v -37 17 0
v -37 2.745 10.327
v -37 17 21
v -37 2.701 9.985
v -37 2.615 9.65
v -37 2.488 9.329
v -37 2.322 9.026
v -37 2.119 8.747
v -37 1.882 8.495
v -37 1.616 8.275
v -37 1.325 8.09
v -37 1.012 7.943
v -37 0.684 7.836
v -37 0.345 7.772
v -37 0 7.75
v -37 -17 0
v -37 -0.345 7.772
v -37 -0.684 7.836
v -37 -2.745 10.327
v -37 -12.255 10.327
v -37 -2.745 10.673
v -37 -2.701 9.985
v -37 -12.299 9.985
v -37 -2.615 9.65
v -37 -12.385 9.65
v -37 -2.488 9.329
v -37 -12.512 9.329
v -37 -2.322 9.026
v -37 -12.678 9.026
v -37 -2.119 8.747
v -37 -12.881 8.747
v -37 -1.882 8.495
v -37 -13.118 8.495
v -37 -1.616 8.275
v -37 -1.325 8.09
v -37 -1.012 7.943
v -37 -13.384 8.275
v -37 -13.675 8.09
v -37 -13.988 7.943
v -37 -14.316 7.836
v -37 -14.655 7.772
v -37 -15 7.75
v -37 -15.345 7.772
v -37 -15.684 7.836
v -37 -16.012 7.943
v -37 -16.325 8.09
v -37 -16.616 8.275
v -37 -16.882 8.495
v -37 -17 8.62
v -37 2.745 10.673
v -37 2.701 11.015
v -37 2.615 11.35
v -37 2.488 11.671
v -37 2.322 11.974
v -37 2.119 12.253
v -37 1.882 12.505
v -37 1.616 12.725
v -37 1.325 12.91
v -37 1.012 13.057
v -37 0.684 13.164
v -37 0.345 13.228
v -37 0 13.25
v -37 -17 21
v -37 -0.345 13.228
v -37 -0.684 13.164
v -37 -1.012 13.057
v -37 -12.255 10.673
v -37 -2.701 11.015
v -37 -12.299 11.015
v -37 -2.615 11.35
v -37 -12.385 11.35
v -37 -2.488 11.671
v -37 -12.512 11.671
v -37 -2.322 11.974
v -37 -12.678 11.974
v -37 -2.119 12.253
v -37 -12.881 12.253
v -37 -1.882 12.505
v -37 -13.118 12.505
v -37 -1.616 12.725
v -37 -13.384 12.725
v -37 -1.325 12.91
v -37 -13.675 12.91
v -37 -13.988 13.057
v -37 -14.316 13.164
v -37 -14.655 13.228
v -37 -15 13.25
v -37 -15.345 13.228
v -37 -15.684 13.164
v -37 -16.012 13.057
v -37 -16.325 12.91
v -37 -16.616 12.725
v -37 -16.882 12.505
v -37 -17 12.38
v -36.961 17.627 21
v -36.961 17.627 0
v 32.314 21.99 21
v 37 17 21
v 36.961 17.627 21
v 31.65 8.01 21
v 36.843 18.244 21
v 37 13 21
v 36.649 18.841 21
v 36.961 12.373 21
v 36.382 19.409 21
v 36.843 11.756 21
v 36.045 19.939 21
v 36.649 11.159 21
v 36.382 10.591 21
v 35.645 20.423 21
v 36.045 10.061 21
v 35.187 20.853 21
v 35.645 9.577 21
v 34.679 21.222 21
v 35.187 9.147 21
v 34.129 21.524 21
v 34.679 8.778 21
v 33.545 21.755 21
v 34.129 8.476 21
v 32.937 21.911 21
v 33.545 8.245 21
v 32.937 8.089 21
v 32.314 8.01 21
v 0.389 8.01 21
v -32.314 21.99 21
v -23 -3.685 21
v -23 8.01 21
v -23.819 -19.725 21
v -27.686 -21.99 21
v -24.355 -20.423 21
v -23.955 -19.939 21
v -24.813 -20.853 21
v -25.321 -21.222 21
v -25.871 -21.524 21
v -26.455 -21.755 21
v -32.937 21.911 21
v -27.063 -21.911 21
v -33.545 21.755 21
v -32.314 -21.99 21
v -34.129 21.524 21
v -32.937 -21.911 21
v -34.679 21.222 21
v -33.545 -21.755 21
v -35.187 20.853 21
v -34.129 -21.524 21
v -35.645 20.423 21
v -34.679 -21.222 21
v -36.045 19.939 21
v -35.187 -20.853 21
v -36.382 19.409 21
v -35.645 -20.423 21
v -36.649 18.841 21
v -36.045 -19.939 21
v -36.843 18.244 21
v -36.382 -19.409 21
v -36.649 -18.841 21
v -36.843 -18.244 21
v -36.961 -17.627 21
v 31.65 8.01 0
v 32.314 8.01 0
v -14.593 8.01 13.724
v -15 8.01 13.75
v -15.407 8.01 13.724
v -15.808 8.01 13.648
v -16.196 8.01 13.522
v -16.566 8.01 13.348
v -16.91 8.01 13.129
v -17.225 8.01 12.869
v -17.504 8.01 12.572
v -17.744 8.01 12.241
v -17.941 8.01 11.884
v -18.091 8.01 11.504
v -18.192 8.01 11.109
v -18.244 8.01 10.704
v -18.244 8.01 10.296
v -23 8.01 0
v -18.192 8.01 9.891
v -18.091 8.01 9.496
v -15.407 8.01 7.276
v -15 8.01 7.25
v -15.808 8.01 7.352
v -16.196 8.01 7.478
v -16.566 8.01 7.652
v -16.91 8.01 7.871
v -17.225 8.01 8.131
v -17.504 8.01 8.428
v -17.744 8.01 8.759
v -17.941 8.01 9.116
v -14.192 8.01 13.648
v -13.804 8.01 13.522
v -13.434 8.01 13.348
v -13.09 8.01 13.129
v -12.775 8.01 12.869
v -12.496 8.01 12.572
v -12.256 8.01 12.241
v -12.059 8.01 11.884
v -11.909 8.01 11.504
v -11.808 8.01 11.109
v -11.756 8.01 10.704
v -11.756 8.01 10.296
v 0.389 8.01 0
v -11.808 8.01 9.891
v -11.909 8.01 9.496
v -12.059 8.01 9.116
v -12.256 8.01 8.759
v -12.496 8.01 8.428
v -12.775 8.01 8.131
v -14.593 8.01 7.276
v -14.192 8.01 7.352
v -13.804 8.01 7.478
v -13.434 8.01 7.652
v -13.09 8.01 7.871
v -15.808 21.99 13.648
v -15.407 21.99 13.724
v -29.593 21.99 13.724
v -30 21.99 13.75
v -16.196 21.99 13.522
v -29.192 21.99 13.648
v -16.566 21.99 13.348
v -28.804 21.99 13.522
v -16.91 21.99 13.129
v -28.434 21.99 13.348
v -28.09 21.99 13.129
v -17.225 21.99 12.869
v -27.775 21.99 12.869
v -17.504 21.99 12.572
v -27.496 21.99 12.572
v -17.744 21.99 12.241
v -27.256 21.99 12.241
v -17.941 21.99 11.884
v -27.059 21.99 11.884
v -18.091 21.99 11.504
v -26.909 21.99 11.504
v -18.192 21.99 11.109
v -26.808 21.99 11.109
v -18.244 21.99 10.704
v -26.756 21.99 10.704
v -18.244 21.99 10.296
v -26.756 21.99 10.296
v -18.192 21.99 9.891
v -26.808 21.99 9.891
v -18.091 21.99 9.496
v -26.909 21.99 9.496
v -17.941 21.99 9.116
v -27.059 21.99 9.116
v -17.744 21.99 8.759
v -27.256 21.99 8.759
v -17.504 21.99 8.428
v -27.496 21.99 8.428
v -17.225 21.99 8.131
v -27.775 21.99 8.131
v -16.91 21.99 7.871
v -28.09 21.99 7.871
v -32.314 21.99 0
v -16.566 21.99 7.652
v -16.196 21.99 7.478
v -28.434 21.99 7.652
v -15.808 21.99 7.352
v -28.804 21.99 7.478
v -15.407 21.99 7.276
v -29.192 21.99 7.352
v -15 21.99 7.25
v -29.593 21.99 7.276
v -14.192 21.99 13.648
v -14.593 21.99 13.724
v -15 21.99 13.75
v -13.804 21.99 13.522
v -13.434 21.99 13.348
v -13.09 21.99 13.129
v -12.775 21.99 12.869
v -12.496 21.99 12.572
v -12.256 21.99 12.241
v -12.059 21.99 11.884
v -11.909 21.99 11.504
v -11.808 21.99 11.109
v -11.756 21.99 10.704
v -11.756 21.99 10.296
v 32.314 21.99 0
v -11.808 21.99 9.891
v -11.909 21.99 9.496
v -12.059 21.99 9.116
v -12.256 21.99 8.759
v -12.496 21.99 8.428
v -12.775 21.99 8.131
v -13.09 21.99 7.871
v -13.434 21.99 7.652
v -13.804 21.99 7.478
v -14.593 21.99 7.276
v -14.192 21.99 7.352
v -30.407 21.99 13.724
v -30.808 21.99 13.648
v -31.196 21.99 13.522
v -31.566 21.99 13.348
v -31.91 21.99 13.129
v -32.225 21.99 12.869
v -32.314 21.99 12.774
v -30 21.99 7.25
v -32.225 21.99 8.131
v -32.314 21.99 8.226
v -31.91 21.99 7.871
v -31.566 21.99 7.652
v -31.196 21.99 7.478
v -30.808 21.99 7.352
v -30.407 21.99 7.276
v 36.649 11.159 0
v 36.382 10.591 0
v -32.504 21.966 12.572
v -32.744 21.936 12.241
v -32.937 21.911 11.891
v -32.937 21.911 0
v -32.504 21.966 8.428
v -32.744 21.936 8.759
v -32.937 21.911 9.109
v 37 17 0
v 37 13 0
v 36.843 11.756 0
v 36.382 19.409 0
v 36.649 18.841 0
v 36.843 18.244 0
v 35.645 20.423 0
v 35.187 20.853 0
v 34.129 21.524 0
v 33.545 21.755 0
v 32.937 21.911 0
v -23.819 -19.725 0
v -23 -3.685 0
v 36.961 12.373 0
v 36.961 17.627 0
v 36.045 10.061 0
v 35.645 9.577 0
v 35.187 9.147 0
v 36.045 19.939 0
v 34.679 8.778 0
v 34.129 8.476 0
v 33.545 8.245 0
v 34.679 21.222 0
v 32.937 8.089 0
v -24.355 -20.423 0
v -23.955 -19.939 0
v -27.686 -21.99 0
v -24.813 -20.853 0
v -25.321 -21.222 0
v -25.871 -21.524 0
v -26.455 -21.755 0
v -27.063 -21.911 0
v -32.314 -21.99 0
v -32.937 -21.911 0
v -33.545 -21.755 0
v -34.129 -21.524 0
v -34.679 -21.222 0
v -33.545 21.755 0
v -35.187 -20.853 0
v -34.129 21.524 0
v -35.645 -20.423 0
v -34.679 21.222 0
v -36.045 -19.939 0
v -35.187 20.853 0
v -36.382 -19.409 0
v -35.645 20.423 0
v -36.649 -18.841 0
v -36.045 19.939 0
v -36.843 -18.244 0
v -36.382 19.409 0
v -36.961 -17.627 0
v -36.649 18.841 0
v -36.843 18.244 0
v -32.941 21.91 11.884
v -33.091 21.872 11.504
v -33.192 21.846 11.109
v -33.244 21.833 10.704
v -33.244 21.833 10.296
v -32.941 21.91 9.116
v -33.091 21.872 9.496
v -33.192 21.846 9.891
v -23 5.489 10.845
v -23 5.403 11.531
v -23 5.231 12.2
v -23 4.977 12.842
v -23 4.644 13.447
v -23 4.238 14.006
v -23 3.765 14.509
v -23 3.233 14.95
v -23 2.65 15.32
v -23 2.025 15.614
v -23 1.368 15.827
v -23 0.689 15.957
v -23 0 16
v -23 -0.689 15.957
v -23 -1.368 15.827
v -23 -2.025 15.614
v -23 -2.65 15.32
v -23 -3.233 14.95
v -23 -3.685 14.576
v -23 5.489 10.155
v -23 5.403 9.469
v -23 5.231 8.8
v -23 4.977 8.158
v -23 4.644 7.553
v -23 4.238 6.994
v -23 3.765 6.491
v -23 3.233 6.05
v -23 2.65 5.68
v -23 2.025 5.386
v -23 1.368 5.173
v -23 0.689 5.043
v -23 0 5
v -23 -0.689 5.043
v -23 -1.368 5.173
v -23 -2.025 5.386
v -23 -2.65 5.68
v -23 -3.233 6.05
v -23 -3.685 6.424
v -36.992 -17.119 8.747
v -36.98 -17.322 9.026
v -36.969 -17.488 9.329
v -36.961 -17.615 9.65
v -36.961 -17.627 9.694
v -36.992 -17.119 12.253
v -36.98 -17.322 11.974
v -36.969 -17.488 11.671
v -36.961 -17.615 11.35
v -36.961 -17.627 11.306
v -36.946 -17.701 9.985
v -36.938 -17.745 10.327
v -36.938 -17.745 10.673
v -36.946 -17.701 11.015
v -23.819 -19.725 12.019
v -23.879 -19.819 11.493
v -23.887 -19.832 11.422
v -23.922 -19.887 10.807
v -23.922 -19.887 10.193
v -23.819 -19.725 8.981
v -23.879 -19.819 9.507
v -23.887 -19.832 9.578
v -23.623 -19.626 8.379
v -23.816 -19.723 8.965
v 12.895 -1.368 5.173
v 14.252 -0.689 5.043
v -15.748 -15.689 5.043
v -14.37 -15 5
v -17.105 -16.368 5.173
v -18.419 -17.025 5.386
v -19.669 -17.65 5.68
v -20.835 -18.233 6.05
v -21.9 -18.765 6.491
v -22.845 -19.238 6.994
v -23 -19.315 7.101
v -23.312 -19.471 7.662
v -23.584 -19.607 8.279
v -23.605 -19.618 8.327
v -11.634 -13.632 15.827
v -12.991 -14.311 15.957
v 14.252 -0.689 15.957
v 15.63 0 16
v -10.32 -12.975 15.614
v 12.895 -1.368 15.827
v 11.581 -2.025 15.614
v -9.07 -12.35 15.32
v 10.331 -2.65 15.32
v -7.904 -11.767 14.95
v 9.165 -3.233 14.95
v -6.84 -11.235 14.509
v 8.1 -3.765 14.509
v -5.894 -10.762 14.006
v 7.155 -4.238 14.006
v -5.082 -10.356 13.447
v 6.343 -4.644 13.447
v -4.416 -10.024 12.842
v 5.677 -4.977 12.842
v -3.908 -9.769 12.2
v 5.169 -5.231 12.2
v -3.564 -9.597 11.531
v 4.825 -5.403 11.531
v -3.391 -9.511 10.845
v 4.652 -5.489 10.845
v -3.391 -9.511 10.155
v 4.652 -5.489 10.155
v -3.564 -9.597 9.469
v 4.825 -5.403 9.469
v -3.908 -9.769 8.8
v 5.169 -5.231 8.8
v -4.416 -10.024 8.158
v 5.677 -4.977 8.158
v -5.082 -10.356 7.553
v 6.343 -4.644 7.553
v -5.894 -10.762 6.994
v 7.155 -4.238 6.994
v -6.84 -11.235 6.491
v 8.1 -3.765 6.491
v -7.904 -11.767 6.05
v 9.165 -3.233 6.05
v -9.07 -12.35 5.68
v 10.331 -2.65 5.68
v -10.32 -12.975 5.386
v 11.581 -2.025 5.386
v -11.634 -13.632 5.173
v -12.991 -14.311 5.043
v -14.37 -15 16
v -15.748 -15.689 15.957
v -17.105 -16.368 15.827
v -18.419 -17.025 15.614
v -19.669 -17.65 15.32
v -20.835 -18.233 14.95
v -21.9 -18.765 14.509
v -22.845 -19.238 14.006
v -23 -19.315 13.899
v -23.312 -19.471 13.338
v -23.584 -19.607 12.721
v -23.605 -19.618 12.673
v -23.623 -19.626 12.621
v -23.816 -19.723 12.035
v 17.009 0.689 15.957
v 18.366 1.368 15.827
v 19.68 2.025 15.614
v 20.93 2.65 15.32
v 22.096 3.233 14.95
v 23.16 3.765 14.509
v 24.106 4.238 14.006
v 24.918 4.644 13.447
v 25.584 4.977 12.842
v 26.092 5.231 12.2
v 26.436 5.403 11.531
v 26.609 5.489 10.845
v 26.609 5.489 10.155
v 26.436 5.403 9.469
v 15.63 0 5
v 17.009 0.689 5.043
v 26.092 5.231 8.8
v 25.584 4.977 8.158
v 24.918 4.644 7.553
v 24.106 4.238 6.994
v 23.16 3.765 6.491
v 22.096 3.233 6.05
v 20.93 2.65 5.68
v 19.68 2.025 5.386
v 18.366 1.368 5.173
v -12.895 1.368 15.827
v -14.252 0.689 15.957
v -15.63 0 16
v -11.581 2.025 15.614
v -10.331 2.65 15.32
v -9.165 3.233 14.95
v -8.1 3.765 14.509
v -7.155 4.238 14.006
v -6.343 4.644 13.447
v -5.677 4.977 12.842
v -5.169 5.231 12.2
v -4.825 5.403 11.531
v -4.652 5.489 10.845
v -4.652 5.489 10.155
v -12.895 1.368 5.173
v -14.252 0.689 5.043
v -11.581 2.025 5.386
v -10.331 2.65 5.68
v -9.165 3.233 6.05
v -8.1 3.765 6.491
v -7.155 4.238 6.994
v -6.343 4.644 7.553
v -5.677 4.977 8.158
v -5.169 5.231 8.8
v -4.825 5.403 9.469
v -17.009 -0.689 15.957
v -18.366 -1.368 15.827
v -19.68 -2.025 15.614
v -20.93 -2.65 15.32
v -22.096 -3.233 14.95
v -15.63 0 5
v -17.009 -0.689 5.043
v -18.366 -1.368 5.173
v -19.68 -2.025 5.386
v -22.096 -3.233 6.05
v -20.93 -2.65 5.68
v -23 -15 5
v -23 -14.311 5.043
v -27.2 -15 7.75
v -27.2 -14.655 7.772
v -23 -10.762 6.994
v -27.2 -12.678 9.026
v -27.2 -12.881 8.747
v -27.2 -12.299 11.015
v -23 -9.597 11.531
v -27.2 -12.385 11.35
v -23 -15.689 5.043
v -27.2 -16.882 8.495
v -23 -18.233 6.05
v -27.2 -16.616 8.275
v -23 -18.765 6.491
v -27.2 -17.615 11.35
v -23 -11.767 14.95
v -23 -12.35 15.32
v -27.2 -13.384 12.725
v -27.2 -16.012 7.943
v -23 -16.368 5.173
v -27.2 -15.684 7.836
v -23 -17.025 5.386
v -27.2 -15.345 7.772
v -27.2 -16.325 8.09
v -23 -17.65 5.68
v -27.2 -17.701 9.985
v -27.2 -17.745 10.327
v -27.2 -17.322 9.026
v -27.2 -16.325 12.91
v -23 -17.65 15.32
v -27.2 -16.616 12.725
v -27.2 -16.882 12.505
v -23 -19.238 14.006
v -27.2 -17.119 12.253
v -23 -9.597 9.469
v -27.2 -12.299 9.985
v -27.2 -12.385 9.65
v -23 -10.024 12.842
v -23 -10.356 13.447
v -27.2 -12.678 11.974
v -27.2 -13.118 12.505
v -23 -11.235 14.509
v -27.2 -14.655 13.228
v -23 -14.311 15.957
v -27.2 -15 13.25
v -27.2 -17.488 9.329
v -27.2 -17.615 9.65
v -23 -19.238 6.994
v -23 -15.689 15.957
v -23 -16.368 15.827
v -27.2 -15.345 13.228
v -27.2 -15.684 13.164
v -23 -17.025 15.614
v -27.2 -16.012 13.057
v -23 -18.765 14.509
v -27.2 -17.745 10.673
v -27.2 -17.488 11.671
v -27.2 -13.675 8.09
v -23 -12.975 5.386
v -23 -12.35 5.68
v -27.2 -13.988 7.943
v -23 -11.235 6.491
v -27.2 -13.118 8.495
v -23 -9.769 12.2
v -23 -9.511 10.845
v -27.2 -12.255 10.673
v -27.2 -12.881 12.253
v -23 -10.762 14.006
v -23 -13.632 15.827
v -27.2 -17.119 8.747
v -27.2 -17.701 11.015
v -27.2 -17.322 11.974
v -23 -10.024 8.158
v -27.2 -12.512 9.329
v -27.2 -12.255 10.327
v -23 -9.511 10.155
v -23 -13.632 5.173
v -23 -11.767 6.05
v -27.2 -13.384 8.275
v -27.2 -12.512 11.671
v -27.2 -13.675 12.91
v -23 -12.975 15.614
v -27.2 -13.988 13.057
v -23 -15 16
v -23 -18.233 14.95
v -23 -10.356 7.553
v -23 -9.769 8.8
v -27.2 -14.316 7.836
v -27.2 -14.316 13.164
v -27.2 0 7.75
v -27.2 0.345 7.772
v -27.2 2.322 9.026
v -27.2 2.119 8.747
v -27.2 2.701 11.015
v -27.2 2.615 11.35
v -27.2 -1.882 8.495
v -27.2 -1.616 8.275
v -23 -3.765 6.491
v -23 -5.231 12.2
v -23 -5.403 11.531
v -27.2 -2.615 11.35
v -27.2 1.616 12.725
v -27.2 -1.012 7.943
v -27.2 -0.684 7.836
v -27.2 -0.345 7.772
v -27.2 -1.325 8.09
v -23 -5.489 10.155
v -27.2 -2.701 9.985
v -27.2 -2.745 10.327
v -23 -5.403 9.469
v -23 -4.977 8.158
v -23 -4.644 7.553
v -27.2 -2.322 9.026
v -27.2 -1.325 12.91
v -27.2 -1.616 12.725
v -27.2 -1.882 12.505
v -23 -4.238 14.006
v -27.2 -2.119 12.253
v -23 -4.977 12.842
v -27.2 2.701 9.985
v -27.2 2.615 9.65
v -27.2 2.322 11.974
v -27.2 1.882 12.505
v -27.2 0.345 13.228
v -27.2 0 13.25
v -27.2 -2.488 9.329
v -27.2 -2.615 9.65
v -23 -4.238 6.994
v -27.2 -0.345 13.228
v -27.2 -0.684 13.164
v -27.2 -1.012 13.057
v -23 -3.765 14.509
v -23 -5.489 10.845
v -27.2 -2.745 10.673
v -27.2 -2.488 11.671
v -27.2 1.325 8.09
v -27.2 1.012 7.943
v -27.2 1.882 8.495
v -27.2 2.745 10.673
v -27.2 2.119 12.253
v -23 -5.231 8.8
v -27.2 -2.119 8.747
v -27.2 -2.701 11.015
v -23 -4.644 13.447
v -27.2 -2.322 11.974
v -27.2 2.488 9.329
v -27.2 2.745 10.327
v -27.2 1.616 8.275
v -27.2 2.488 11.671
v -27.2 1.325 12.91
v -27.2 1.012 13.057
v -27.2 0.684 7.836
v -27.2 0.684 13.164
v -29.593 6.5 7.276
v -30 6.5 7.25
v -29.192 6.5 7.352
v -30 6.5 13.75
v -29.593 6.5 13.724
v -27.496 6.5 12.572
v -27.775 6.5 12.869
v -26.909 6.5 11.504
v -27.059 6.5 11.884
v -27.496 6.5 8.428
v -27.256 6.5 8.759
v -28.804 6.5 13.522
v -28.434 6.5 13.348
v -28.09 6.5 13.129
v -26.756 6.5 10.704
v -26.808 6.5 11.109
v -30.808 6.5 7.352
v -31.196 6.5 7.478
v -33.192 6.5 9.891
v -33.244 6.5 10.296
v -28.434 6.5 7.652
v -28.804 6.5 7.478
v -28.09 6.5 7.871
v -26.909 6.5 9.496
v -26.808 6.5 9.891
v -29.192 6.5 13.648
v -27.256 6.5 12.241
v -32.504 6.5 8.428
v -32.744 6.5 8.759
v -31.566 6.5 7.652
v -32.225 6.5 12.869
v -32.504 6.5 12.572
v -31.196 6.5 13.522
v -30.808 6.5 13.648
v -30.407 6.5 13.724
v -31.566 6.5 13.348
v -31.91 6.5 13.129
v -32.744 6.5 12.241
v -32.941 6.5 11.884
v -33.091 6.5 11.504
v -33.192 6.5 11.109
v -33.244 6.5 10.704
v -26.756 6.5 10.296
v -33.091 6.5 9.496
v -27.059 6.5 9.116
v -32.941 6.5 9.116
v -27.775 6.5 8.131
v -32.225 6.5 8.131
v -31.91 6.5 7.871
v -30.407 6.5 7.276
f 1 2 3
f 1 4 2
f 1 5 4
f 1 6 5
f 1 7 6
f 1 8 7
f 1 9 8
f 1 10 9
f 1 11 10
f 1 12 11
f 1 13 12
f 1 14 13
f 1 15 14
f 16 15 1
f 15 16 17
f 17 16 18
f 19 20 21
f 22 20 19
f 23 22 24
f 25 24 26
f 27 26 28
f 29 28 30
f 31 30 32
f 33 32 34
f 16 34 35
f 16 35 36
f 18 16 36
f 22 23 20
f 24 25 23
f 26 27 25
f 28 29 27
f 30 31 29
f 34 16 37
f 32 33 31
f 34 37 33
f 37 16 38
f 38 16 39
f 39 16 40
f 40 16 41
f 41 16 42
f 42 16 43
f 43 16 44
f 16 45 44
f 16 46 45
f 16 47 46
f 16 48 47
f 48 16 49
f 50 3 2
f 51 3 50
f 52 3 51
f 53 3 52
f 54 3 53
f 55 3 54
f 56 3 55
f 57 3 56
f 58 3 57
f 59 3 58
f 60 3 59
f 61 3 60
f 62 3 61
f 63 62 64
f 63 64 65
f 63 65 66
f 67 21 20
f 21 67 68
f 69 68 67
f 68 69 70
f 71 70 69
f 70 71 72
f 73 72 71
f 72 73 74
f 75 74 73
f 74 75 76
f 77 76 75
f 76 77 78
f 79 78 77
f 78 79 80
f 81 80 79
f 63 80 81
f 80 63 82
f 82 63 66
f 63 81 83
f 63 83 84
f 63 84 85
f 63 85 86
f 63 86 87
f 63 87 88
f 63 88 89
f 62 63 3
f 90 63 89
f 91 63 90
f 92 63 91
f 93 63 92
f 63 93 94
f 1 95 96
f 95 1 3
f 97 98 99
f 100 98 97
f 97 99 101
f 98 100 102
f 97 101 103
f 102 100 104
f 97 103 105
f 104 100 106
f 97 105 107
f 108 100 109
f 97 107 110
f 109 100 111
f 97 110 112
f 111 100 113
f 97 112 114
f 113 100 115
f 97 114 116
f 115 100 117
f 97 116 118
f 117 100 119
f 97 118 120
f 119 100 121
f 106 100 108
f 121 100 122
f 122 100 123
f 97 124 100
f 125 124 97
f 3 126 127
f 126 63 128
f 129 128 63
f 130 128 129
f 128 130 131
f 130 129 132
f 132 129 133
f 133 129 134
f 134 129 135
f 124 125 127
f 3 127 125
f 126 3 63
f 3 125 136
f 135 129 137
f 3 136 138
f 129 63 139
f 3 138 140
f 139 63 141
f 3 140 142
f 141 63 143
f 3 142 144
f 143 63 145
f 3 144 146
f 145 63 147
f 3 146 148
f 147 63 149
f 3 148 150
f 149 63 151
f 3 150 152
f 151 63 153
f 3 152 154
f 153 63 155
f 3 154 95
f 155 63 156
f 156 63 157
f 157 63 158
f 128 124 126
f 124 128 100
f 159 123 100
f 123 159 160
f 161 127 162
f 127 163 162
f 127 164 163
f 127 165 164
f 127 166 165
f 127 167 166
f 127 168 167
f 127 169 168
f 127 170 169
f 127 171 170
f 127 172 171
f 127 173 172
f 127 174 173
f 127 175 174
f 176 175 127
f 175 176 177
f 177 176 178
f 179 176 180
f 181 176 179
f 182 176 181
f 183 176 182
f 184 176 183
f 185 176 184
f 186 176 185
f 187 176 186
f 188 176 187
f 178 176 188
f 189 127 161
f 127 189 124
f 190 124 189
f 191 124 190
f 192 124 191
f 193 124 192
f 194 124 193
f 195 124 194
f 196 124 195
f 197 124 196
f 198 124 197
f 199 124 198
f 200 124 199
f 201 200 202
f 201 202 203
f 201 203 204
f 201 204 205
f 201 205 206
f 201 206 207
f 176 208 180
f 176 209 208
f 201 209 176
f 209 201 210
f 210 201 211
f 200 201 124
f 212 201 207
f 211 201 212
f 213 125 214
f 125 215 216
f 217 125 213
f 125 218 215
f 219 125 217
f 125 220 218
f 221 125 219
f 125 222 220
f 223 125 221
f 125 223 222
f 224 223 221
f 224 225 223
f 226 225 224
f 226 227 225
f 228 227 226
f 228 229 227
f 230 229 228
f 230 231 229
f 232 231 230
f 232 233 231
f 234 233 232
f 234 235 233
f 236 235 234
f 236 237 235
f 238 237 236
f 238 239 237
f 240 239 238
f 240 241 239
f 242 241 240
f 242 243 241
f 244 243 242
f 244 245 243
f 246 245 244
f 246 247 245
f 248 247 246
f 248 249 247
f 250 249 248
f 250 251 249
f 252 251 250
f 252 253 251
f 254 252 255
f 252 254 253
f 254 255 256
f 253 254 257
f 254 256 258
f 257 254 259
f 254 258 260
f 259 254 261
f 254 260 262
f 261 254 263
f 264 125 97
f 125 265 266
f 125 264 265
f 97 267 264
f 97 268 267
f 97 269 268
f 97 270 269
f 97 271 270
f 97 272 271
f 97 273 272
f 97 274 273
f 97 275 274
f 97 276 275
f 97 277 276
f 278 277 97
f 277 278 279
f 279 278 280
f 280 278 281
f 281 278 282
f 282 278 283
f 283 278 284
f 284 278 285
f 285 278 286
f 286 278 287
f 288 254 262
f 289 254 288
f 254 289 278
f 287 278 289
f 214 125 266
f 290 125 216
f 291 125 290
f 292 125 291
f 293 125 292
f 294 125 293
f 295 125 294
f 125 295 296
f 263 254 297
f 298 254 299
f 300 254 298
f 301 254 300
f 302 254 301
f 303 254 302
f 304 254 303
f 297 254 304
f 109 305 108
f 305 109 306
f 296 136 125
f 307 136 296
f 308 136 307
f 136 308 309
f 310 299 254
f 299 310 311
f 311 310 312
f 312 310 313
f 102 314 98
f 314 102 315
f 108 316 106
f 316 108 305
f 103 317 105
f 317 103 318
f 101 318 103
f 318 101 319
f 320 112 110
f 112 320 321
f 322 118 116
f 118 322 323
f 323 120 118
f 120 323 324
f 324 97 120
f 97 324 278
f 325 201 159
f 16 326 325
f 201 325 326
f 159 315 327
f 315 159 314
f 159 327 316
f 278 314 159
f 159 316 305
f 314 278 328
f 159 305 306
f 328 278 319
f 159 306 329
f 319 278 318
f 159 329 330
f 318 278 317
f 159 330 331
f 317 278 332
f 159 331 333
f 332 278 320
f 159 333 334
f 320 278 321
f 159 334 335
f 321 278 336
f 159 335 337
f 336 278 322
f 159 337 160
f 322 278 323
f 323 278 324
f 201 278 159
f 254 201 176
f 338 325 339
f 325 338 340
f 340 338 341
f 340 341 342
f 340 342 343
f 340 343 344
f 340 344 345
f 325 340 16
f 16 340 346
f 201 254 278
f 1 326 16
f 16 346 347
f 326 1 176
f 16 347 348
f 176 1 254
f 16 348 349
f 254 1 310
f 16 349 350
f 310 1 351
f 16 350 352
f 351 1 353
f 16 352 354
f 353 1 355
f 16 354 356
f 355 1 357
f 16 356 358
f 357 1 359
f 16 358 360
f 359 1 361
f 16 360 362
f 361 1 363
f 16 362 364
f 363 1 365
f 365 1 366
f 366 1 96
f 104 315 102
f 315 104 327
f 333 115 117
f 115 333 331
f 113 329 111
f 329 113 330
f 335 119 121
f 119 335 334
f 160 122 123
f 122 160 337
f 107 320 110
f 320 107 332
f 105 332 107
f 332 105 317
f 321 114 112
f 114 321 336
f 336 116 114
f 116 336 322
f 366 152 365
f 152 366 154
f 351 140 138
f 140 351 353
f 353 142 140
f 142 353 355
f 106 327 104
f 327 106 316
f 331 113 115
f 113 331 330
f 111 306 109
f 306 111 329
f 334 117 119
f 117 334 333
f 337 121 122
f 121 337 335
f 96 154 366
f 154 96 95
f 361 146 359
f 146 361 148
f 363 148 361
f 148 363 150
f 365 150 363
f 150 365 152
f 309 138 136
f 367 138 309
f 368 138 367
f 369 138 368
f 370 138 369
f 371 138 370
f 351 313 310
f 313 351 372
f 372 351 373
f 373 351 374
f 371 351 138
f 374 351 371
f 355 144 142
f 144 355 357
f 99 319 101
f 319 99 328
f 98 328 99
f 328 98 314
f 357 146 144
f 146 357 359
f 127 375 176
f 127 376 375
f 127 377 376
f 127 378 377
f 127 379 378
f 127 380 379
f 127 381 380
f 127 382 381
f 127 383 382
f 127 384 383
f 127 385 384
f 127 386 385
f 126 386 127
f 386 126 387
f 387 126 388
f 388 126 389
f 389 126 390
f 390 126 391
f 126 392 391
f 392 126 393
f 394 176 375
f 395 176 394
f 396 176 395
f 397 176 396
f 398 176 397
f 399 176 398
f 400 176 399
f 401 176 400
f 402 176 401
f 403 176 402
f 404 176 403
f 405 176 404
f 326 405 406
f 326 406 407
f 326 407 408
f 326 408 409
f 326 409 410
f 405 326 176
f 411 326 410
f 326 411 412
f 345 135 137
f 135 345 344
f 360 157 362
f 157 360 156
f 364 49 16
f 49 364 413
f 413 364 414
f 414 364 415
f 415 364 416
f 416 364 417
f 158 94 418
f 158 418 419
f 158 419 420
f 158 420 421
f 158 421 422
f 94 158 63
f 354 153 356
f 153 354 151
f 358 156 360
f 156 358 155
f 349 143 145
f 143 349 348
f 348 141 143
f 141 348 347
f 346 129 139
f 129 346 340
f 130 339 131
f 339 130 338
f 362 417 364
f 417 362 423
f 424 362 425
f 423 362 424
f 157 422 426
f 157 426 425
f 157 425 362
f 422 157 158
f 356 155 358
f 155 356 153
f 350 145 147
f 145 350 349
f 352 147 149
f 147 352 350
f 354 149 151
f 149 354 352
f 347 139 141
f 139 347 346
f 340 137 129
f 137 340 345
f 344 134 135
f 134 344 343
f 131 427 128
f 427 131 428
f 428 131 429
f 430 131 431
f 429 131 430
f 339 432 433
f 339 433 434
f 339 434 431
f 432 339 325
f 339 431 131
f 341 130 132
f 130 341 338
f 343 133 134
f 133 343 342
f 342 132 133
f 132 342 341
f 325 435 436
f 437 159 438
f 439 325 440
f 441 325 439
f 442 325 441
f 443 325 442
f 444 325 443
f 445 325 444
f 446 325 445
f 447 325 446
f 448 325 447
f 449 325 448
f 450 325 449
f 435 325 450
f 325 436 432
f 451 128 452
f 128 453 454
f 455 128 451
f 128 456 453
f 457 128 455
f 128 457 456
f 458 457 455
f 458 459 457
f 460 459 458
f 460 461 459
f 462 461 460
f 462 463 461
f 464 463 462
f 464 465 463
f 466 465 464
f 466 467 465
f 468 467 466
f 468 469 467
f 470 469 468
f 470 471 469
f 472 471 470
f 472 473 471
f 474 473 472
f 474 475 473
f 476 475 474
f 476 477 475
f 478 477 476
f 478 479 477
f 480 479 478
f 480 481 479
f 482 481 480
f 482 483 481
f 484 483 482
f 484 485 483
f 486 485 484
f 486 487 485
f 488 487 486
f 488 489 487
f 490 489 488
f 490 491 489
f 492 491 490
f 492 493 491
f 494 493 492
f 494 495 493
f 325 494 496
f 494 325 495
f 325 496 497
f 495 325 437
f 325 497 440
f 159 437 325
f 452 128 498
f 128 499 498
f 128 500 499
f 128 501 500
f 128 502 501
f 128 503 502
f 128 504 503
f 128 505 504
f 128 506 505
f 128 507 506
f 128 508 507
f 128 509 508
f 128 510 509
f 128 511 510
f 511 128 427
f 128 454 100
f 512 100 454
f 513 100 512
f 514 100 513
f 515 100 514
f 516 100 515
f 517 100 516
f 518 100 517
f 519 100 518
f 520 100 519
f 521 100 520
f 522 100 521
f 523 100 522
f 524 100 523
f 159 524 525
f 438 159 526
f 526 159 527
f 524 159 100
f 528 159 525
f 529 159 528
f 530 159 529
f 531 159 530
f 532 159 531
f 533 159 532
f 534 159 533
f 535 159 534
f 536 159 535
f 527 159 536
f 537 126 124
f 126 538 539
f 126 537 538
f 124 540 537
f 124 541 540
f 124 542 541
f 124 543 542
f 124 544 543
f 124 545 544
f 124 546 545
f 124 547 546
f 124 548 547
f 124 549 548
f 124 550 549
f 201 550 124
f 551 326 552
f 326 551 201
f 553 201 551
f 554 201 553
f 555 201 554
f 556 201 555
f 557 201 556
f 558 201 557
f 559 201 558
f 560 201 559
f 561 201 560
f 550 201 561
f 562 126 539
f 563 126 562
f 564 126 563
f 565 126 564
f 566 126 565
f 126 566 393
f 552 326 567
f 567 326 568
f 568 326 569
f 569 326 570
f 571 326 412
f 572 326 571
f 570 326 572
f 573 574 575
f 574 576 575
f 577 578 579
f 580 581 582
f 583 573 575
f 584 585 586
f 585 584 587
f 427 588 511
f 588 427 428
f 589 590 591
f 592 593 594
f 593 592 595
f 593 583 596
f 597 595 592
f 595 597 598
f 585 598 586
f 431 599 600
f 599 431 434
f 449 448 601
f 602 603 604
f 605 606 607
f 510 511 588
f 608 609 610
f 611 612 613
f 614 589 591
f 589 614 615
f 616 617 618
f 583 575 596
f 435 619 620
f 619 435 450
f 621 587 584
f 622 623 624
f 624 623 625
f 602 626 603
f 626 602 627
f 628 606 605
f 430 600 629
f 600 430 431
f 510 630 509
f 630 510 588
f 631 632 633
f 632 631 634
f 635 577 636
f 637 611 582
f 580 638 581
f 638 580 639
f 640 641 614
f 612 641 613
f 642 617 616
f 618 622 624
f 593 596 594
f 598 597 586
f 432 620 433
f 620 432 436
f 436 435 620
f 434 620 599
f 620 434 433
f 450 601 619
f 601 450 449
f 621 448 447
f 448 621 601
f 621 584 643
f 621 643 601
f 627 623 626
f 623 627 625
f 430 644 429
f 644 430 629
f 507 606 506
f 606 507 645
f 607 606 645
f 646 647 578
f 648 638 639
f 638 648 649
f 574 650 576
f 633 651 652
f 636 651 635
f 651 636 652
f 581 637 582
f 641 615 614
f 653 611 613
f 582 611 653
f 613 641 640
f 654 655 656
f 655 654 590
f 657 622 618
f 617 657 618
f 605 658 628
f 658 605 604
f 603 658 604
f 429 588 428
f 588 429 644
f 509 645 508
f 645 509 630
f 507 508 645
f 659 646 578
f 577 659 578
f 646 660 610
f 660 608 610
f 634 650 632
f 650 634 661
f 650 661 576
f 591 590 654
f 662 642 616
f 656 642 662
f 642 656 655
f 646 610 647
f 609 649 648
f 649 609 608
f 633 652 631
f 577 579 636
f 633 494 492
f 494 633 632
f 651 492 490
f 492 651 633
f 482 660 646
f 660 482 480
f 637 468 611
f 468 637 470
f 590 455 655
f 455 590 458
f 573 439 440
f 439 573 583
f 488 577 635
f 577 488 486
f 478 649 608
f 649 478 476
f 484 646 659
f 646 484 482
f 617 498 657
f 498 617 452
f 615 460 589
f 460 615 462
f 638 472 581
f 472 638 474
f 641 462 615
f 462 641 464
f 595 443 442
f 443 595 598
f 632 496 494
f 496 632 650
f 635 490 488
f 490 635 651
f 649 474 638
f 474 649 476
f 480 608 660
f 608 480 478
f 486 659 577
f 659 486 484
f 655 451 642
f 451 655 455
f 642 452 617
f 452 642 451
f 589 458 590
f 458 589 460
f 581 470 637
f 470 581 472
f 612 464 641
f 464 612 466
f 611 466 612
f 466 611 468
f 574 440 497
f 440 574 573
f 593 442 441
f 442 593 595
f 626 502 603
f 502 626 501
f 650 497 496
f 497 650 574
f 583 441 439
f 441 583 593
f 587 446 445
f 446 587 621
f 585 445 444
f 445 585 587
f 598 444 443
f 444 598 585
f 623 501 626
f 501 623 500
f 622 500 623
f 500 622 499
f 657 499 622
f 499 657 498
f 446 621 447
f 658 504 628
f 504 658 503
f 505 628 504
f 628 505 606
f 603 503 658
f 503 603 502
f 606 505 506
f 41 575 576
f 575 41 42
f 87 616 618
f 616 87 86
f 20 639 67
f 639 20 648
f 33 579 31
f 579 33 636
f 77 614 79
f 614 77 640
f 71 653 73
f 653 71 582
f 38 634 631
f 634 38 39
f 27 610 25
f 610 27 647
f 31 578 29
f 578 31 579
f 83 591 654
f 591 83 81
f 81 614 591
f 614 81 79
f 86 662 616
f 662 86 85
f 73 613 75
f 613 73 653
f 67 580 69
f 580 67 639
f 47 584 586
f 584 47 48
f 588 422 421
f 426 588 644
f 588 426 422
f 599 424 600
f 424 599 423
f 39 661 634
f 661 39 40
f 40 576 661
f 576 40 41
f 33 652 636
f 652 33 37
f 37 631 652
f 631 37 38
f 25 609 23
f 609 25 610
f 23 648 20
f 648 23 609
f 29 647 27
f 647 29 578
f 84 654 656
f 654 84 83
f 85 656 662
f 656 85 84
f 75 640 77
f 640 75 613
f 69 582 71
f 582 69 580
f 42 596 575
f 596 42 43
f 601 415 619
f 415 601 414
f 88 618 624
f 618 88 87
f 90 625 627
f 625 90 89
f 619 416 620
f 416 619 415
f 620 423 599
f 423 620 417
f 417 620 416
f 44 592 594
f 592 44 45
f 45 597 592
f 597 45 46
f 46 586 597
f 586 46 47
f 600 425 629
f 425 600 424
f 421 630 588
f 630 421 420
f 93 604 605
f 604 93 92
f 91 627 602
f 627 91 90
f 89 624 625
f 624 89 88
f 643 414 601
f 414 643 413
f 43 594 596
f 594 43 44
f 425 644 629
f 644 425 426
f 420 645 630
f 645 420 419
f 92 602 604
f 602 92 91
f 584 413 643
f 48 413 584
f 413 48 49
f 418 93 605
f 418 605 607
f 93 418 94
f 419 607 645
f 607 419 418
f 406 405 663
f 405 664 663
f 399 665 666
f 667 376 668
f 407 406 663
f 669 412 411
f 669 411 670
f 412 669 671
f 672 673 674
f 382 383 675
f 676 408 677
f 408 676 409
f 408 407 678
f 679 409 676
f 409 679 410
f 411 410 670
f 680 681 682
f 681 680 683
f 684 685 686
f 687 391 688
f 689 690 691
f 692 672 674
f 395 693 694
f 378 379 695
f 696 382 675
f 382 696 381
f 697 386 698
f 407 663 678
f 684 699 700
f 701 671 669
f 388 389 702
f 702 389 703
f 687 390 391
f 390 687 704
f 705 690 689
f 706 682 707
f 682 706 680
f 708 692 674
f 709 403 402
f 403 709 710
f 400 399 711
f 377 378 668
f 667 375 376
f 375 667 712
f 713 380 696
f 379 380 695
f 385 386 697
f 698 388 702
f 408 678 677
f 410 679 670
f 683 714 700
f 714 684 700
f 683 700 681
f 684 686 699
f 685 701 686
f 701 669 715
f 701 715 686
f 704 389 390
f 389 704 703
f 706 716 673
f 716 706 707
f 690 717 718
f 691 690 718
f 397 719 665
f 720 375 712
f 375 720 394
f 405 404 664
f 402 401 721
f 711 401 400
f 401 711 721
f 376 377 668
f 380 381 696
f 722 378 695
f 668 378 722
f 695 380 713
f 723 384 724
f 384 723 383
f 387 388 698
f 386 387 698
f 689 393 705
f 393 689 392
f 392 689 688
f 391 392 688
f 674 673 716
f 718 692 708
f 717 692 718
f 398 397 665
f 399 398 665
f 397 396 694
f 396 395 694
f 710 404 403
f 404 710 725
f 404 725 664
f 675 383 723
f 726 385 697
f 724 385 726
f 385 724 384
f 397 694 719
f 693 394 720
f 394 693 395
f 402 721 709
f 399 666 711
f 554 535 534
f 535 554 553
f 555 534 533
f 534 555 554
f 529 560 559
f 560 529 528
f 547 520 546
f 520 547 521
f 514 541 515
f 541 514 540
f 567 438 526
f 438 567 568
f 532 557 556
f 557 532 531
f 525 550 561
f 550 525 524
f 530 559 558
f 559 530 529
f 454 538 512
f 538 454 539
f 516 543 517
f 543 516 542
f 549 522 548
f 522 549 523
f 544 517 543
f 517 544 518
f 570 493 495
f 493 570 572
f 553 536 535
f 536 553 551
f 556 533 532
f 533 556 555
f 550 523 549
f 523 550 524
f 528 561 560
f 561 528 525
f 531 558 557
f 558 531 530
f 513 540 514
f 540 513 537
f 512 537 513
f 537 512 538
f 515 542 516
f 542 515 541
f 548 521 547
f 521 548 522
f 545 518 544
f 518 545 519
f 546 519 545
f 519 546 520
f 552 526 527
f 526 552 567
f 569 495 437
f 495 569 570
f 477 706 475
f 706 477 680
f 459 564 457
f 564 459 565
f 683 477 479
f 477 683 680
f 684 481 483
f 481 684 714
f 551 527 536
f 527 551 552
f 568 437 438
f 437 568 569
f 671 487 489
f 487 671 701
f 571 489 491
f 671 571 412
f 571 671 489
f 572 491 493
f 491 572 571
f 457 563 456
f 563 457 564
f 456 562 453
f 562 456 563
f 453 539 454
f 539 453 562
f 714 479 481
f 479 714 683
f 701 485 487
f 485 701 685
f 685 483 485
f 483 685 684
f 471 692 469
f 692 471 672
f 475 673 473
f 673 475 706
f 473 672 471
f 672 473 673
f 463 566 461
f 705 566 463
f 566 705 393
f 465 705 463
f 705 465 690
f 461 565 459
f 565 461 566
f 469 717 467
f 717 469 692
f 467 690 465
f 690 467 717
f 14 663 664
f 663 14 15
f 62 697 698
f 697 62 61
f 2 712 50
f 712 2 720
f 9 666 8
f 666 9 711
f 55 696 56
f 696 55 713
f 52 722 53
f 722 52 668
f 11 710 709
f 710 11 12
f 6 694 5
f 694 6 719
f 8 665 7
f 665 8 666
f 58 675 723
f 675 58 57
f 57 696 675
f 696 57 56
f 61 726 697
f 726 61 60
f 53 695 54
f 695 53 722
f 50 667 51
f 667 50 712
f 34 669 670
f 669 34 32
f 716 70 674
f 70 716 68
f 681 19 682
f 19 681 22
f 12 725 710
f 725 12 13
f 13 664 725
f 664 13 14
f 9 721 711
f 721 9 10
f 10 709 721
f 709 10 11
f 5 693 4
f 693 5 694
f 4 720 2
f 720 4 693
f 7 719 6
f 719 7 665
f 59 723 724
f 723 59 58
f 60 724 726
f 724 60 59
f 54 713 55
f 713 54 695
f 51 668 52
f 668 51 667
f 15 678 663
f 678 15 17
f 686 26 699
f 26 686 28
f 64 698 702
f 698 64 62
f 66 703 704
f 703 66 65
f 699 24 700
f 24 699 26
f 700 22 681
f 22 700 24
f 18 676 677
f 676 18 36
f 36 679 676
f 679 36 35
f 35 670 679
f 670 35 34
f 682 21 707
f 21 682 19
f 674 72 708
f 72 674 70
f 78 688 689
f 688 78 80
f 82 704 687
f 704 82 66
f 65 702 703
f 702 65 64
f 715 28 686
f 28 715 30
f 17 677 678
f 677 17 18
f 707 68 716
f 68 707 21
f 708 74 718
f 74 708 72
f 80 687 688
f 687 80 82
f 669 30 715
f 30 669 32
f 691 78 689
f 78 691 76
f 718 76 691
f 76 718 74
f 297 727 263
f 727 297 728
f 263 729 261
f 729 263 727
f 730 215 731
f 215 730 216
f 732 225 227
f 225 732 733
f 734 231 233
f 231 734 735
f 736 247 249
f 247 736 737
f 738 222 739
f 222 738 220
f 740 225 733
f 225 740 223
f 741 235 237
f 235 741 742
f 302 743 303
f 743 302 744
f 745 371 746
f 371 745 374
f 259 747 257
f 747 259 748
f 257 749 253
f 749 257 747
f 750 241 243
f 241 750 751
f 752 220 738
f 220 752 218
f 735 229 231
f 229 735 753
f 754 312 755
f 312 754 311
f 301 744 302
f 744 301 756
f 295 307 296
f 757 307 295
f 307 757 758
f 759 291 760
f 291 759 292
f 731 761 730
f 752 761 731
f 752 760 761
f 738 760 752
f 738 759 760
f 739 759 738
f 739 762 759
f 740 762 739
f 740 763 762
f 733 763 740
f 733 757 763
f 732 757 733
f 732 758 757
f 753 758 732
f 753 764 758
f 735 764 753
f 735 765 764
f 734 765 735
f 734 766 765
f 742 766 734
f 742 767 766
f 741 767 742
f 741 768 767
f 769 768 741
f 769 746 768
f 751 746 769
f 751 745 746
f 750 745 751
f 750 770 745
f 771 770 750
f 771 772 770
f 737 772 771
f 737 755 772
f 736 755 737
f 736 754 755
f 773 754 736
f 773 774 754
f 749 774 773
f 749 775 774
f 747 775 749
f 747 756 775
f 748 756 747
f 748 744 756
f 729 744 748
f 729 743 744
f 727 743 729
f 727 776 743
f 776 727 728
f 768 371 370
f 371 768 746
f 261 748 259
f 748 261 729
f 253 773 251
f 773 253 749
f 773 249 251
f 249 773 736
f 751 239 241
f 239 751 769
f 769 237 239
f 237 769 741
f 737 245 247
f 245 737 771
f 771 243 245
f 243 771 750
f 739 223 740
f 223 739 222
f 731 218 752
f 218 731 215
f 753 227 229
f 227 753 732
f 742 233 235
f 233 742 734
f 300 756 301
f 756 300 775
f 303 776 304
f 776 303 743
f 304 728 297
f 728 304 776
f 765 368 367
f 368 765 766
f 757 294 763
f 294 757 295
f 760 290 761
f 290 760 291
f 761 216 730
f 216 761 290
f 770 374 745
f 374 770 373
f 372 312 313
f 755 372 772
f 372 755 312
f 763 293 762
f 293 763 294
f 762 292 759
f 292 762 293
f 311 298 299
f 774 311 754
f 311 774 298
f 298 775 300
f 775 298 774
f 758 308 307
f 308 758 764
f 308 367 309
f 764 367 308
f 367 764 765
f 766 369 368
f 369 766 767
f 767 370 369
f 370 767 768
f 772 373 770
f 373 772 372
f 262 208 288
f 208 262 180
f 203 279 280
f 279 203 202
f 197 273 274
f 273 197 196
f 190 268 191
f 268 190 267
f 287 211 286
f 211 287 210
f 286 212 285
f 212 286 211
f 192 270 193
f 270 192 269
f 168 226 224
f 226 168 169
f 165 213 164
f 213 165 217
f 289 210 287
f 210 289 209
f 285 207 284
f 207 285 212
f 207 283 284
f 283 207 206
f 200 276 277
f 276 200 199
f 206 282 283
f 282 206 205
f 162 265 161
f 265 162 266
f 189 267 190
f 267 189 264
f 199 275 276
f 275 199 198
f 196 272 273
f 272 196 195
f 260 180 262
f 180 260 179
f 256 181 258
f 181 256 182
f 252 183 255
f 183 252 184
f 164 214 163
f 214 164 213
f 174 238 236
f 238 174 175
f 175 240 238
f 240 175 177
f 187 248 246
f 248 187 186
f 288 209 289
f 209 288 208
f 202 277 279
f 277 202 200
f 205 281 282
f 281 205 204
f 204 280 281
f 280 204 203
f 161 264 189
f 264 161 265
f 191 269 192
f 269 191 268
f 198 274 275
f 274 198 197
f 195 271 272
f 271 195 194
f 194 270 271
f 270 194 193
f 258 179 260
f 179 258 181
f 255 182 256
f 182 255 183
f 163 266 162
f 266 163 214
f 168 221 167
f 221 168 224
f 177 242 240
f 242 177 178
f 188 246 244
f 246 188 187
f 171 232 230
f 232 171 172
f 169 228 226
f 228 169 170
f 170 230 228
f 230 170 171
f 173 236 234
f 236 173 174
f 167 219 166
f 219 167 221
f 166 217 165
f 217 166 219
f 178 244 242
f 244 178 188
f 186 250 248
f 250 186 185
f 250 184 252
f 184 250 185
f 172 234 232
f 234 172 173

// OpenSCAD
$fn = 50;


difference() {
	union() {
		translate(v = [0, 15.0000000000, 0]) {
			hull() {
				translate(v = [-32.0000000000, 2.0000000000, 0]) {
					cylinder(h = 21, r = 5);
				}
				translate(v = [32.0000000000, 2.0000000000, 0]) {
					cylinder(h = 21, r = 5);
				}
				translate(v = [-32.0000000000, -2.0000000000, 0]) {
					cylinder(h = 21, r = 5);
				}
				translate(v = [32.0000000000, -2.0000000000, 0]) {
					cylinder(h = 21, r = 5);
				}
			}
		}
		translate(v = [-30.0000000000, 0, 0]) {
			hull() {
				translate(v = [-2.0000000000, 17.0000000000, 0]) {
					cylinder(h = 21, r = 5);
				}
				translate(v = [2.0000000000, 17.0000000000, 0]) {
					cylinder(h = 21, r = 5);
				}
				translate(v = [-2.0000000000, -17.0000000000, 0]) {
					cylinder(h = 21, r = 5);
				}
				translate(v = [2.0000000000, -17.0000000000, 0]) {
					cylinder(h = 21, r = 5);
				}
			}
		}
		rotate(a = [0, 0, 26.5650511771]) {
			hull() {
				translate(v = [-33.0410196625, 2.0000000000, 0]) {
					cylinder(h = 21, r = 5);
				}
				translate(v = [33.0410196625, 2.0000000000, 0]) {
					cylinder(h = 21, r = 5);
				}
				translate(v = [-33.0410196625, -2.0000000000, 0]) {
					cylinder(h = 21, r = 5);
				}
				translate(v = [33.0410196625, -2.0000000000, 0]) {
					cylinder(h = 21, r = 5);
				}
			}
		}
	}
	union() {
		translate(v = [-23.0000000000, -15.0000000000, 10.5000000000]) {
			rotate(a = [0, 90, 0]) {
				difference() {
					union() {
						#translate(v = [0, 0, -14.0000000000]) {
							cylinder(h = 14, r = 2.2500000000);
						}
						#translate(v = [0, 0, -4.2000000000]) {
							cylinder(h = 4.2000000000, r1 = 2.7500000000, r2 = 5.5000000000);
						}
						#cylinder(h = 250, r = 5.5000000000);
						#translate(v = [0, 0, -14.0000000000]) {
							cylinder(h = 14, r = 2.7500000000);
						}
						#translate(v = [0, 0, -14.0000000000]) {
							cylinder(h = 14, r = 2.2500000000);
						}
					}
					union();
				}
			}
		}
		translate(v = [-23.0000000000, 0.0000000000, 10.5000000000]) {
			rotate(a = [0, 90, 0]) {
				difference() {
					union() {
						#translate(v = [0, 0, -14.0000000000]) {
							cylinder(h = 14, r = 2.2500000000);
						}
						#translate(v = [0, 0, -4.2000000000]) {
							cylinder(h = 4.2000000000, r1 = 2.7500000000, r2 = 5.5000000000);
						}
						#cylinder(h = 250, r = 5.5000000000);
						#translate(v = [0, 0, -14.0000000000]) {
							cylinder(h = 14, r = 2.7500000000);
						}
						#translate(v = [0, 0, -14.0000000000]) {
							cylinder(h = 14, r = 2.2500000000);
						}
					}
					union();
				}
			}
		}
		#translate(v = [-45.0000000000, 22.5000000000, 10.5000000000]) {
			rotate(a = [0, 90, -90]) {
				cylinder(h = 20, r = 3.2500000000);
			}
		}
		#translate(v = [-30.0000000000, 22.5000000000, 10.5000000000]) {
			rotate(a = [0, 90, -90]) {
				cylinder(h = 16, r = 3.2500000000);
			}
		}
		#translate(v = [-60.0000000000, 22.5000000000, 10.5000000000]) {
			rotate(a = [0, 90, -90]) {
				cylinder(h = 16, r = 3.2500000000);
			}
		}
		#translate(v = [-75.0000000000, 22.5000000000, 10.5000000000]) {
			rotate(a = [0, 90, -90]) {
				cylinder(h = 16, r = 3.2500000000);
			}
		}
		#translate(v = [-15.0000000000, 22.5000000000, 10.5000000000]) {
			rotate(a = [0, 90, -90]) {
				cylinder(h = 20, r = 3.2500000000);
			}
		}
	}
}
